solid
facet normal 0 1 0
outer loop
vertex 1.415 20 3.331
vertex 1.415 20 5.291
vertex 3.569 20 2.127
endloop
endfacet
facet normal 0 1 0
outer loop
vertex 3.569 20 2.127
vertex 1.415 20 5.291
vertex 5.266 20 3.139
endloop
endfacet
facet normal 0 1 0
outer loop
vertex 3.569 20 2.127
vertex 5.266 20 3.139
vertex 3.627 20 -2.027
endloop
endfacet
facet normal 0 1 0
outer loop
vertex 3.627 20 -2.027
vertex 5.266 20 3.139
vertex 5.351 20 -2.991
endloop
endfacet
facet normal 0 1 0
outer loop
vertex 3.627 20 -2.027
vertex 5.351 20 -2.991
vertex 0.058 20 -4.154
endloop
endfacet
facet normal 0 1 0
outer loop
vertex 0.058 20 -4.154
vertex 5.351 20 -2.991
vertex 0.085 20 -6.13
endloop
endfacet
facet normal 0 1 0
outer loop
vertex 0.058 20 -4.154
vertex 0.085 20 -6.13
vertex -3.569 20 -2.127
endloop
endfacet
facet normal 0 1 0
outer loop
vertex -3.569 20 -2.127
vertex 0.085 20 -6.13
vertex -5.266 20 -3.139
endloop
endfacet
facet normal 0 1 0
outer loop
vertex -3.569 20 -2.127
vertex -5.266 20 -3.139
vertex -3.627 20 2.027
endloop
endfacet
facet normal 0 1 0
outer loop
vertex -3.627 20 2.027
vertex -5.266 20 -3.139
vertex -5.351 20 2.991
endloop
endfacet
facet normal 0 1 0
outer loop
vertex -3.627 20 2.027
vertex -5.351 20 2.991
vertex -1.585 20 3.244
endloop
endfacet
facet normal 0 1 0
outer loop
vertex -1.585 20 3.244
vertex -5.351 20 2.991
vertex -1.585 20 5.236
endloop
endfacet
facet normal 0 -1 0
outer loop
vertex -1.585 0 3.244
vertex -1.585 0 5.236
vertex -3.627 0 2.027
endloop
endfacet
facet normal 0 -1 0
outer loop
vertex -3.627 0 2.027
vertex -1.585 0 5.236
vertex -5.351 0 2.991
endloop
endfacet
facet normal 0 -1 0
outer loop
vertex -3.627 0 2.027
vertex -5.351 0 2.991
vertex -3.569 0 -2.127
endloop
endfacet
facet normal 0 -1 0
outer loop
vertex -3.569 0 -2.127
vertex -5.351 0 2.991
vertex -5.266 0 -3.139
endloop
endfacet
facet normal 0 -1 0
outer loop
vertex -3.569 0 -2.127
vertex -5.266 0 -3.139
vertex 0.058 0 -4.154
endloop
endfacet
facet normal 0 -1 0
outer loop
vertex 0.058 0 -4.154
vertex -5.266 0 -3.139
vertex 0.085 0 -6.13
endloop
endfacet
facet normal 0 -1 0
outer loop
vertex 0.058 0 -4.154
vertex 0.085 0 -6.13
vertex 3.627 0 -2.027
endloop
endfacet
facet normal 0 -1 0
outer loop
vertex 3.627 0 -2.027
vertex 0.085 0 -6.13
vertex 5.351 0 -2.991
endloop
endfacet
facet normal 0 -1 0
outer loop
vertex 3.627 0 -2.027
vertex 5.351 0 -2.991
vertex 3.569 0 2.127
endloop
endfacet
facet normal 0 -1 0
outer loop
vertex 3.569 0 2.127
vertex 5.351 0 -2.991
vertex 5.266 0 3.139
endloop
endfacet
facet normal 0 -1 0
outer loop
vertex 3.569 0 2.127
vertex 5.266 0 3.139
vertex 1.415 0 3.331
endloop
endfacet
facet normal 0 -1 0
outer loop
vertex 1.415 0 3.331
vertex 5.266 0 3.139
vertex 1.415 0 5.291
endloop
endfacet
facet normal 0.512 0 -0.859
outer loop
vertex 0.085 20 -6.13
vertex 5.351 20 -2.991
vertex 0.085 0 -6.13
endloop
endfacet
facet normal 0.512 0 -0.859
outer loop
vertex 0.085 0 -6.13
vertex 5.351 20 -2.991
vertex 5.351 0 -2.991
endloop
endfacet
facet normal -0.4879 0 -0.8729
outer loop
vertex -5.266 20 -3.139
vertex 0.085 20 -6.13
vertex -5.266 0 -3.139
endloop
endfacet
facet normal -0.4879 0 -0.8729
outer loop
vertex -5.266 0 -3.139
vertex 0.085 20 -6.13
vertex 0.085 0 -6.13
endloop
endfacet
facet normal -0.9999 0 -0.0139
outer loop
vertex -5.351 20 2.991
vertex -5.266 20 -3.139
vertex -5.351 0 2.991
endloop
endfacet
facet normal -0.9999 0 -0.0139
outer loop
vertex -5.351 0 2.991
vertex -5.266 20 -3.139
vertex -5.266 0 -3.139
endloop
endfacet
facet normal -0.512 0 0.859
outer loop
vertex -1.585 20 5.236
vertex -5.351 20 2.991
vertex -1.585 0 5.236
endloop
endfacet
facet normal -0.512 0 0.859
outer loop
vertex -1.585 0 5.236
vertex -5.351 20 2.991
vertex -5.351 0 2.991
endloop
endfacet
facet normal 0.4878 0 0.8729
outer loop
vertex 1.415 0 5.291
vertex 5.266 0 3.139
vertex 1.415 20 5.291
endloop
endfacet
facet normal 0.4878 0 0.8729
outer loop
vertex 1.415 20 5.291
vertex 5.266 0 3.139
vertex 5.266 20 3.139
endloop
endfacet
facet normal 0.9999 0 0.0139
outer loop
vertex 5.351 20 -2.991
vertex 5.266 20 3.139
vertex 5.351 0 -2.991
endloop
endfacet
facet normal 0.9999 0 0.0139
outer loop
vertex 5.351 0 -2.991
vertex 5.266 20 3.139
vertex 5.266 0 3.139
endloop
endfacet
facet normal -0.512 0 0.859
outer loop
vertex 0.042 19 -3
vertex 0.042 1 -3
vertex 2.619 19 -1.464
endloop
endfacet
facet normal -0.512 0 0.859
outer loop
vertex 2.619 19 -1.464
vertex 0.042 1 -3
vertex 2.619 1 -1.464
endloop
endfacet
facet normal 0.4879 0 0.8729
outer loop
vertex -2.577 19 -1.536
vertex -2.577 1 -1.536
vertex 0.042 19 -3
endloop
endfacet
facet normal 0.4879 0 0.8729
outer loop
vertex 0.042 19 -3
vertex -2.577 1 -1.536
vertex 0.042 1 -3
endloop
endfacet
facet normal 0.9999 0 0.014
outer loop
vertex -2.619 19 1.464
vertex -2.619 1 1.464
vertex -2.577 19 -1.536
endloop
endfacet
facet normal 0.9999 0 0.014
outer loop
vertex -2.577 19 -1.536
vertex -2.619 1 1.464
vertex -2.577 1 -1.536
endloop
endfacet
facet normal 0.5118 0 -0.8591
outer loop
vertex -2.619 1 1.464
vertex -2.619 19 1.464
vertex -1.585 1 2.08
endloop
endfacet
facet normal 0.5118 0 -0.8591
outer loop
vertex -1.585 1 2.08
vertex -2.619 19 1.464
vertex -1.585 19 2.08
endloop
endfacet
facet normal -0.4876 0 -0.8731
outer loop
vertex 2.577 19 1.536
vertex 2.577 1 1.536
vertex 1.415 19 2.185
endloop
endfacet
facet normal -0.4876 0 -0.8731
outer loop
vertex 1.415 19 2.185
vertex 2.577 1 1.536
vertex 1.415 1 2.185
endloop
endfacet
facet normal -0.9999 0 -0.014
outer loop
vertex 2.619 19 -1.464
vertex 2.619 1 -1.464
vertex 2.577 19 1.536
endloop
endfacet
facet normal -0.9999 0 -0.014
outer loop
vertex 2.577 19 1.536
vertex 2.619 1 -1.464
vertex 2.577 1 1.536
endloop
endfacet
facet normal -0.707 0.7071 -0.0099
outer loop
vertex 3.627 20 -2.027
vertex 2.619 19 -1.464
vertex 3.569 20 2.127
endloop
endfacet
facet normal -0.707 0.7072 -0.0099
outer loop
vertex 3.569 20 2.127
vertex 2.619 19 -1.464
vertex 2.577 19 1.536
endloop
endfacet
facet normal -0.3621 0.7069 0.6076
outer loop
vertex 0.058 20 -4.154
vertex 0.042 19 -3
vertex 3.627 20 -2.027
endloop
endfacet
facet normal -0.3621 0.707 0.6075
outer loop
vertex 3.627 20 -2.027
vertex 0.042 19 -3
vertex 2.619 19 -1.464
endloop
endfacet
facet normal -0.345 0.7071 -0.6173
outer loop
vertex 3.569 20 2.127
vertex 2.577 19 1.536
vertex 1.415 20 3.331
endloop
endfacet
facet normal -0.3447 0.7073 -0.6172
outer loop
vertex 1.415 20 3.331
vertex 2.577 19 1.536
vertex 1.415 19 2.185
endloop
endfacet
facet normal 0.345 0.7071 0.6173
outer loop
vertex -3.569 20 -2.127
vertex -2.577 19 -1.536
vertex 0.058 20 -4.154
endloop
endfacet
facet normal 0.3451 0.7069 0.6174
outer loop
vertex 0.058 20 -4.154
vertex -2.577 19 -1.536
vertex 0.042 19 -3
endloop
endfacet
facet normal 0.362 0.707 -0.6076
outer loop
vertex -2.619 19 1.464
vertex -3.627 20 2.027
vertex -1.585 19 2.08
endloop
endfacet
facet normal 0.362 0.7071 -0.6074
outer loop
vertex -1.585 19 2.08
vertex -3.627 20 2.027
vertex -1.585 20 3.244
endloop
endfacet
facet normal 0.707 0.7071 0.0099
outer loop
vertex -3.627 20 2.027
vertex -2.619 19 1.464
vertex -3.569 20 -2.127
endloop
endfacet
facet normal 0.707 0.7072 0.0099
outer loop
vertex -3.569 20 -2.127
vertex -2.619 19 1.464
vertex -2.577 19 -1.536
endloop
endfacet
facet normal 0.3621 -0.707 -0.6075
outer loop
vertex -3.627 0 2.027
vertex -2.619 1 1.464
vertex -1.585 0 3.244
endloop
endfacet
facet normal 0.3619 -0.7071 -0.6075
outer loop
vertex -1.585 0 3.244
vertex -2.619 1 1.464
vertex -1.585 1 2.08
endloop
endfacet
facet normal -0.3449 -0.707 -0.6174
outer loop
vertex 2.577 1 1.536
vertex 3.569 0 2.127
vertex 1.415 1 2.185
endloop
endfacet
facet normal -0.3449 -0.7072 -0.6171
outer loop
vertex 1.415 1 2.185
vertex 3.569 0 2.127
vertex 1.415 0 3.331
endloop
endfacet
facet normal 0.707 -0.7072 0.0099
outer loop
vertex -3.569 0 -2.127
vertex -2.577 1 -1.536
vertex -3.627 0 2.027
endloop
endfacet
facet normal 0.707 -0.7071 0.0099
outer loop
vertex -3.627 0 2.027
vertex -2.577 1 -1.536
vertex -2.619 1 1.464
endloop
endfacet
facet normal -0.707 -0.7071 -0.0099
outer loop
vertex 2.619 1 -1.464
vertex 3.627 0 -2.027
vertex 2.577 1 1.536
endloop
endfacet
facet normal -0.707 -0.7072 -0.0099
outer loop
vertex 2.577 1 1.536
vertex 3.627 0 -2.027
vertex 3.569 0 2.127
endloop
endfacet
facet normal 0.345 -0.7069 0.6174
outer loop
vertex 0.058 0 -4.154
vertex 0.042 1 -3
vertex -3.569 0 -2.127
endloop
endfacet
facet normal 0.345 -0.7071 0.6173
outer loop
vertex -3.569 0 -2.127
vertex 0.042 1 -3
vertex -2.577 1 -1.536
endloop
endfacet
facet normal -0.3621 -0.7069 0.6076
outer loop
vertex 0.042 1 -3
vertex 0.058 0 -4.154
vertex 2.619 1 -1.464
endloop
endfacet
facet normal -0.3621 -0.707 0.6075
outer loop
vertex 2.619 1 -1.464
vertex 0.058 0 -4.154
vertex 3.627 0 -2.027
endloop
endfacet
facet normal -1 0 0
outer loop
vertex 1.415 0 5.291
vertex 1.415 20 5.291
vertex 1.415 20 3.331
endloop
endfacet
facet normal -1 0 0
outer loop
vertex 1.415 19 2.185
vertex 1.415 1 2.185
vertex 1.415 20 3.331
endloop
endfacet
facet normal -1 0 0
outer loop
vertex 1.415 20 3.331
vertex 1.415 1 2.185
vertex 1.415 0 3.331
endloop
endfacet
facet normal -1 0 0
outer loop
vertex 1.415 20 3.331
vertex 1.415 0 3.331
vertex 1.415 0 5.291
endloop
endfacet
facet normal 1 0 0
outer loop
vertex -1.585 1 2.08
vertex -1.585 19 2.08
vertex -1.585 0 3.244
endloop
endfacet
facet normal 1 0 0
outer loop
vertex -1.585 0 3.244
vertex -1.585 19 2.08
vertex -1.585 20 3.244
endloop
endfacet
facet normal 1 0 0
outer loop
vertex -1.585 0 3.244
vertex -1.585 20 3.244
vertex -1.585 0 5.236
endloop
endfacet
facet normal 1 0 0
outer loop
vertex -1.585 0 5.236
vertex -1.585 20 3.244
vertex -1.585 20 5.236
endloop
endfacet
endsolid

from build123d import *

# Parameters (mm, degrees)
BOSS_EXTRUDE1_DEPTH = 20
CHAMFER1_SIZE       = 1
SKETCH2_W           = 3
SKETCH2_H           = 5.519803574
CUT_EXTRUDE1_DEPTH  = 26


with BuildPart() as part:
    # Sketch1 → Boss-Extrude1 (new body)
    with BuildSketch(Plane(origin=(0, 0, 0), x_dir=(1, 0, 0), z_dir=(0, 1, 0))):
        Polygon((0.084907706, 6.13), (-5.266281872, 3.13853223), (-5.351189578, -2.99146777), (-0.084907706, -6.13), (5.266281872, -3.13853223), (5.351189578, 2.99146777), align=None)
        Polygon((0.041549541, 2.999712259), (-2.57705225, 1.535839087), (-2.618601791, -1.463873171), (-0.041549541, -2.999712259), (2.57705225, -1.535839087), (2.618601791, 1.463873171), align=None, mode=Mode.SUBTRACT)
    extrude(amount=BOSS_EXTRUDE1_DEPTH)

    # Chamfer1
    chamfer1_edges = [part.edges().sort_by_distance(p)[0] for p in [
        (1.330075666, 0, -2.231792715),
        (-1.267751354, 0, -2.267775673),
        (-2.59782702, 0, -0.035982958),
        (-1.330075666, 0, 2.231792715),
        (1.267751354, 0, 2.267775673),
        (2.59782702, 0, 0.035982958),
        (1.330075666, 20, -2.231792715),
        (-1.267751354, 20, -2.267775673),
        (-2.59782702, 20, -0.035982958),
        (-1.330075666, 20, 2.231792715),
        (1.267751354, 20, 2.267775673),
        (2.59782702, 20, 0.035982958),
    ]]
    chamfer(chamfer1_edges, length=CHAMFER1_SIZE)

    # Sketch2 → Cut-Extrude1 (cut)
    with BuildSketch(Plane(origin=(0, 20, 0), x_dir=(1, 0, 0), z_dir=(0, 1, 0))):
        with Locations((-0.084907706, -4.416905982)):
            Rectangle(SKETCH2_W, SKETCH2_H)
    extrude(amount=-CUT_EXTRUDE1_DEPTH, mode=Mode.SUBTRACT)


solid = part.part
